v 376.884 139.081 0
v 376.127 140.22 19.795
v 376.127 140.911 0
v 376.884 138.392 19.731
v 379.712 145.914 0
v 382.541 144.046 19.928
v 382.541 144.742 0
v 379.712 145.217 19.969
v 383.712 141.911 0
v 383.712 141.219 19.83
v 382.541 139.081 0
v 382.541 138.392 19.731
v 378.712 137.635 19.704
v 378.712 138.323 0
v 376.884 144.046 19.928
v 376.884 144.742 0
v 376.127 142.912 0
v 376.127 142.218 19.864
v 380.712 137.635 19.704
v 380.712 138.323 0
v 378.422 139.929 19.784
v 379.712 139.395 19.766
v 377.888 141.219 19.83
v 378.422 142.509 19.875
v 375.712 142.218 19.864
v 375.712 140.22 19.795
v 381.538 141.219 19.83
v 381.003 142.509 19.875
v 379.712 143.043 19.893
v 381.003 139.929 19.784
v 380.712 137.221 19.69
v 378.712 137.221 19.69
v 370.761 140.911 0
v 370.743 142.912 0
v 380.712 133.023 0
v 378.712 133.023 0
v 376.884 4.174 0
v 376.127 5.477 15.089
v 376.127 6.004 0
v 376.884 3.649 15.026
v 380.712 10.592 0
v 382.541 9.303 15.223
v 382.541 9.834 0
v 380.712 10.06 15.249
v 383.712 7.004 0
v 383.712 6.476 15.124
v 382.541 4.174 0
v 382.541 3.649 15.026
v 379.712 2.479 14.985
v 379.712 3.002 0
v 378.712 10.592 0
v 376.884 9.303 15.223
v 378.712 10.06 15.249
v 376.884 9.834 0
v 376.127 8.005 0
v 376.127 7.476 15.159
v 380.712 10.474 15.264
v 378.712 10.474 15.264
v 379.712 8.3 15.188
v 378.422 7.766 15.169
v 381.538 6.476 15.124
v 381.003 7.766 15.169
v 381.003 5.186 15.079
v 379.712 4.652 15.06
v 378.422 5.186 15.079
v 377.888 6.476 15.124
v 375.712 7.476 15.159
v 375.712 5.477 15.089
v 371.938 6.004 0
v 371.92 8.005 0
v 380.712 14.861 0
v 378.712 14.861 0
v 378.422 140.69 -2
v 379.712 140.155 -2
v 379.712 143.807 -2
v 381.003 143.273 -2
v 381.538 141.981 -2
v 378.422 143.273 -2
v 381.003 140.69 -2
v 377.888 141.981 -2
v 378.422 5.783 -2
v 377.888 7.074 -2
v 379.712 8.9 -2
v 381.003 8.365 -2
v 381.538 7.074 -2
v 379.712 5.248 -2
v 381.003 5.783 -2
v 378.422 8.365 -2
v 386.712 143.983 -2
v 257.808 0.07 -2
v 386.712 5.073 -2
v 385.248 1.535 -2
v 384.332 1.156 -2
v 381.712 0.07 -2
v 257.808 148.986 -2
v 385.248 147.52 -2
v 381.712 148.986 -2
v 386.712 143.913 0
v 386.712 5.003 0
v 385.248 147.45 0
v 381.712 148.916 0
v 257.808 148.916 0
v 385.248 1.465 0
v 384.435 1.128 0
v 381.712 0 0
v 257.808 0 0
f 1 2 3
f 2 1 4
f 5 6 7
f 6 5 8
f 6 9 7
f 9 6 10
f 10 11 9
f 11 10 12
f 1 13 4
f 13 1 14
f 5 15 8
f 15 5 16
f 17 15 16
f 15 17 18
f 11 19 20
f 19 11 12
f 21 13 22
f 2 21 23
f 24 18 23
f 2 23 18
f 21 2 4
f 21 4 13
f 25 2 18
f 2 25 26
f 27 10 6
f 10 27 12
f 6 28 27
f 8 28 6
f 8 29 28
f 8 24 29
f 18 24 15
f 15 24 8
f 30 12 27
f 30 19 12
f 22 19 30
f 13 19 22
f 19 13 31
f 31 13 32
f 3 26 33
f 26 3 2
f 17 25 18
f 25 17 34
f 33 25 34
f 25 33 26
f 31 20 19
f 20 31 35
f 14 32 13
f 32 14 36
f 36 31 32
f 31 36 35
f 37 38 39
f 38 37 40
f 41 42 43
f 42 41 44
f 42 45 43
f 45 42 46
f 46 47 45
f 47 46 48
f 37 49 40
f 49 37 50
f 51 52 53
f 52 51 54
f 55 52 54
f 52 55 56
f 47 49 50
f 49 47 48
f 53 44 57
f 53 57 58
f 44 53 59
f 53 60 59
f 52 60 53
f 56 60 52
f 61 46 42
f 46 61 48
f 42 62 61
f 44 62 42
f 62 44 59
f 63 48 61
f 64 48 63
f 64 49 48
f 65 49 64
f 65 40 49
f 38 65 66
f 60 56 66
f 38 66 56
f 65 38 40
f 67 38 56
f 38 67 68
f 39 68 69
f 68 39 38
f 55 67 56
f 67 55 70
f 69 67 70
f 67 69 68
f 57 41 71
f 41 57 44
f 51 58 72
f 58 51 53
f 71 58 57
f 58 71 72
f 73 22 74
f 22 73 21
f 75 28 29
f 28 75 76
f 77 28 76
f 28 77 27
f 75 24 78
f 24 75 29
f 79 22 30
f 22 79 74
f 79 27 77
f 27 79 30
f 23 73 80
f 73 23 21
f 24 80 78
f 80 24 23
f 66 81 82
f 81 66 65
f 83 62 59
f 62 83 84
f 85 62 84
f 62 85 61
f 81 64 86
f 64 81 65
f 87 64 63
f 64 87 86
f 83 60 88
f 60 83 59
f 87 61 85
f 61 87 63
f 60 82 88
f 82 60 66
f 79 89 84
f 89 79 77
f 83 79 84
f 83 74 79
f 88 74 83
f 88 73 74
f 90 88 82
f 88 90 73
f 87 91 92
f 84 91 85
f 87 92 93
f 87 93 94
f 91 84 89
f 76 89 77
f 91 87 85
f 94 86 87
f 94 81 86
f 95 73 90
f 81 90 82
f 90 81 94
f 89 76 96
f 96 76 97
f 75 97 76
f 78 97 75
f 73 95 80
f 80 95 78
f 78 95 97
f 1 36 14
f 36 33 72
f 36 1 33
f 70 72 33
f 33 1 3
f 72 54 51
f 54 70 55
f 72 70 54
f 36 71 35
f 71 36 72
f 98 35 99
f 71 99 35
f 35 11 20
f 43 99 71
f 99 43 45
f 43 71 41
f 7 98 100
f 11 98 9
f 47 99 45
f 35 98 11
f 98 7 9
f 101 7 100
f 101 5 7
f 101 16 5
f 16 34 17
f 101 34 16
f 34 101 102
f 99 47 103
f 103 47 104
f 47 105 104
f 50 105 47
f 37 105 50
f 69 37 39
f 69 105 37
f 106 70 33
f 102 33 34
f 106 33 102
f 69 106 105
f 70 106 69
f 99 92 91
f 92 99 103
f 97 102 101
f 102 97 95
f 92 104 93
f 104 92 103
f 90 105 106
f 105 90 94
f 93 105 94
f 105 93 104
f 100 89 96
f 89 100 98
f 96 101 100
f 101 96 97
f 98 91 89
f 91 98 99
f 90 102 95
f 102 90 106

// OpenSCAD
// Generated by SolidPython 1.1.3 on 2025-01-26 22:52:07
$fn = 8;


difference() {
	intersection() {
		union() {
			difference() {
				rotate(a = 2, v = [1, 0, 0]) {
					translate(v = [0, 0, 15.4445000000]) {
						translate(v = [0, 138.8250000000, 0]) {
							translate(v = [10, 0, 0]) {
								difference() {
									translate(v = [-3, 0, 0]) {
										translate(v = [0, -131.8250000000, 0]) {
											translate(v = [0, 0, -68.5555000000]) {
												union() {
													translate(v = [0, 0, 0]) {
														translate(v = [0, 0, 0]) {
															union() {
																cylinder(h = 68, r = 4.0000000000);
																rotate(a = 90, v = [1, 0, 0]) {
																	linear_extrude(center = true, height = 2) {
																		polygon(paths = [[0, 1, 2, 3]], points = [[0, 0], [0, 68], [4.0000000000, 68], [21.0000000000, 0]]);
																	}
																}
																rotate(a = 90, v = [0, 0, 1]) {
																	rotate(a = 90, v = [1, 0, 0]) {
																		linear_extrude(center = true, height = 2) {
																			polygon(paths = [[0, 1, 2, 3]], points = [[0, 0], [0, 68], [4.0000000000, 68], [21.0000000000, 0]]);
																		}
																	}
																}
															}
														}
													}
													translate(v = [0, 0, 0]) {
														translate(v = [0, 134.8250000000, 0]) {
															union() {
																cylinder(h = 68, r = 4.0000000000);
																rotate(a = 90, v = [1, 0, 0]) {
																	linear_extrude(center = true, height = 2) {
																		polygon(paths = [[0, 1, 2, 3]], points = [[0, 0], [0, 68], [4.0000000000, 68], [21.0000000000, 0]]);
																	}
																}
																rotate(a = 270, v = [0, 0, 1]) {
																	rotate(a = 90, v = [1, 0, 0]) {
																		linear_extrude(center = true, height = 2) {
																			polygon(paths = [[0, 1, 2, 3]], points = [[0, 0], [0, 68], [4.0000000000, 68], [21.0000000000, 0]]);
																		}
																	}
																}
															}
														}
													}
													translate(v = [372.7125000000, 0, 0]) {
														translate(v = [0, 134.8250000000, 0]) {
															union() {
																cylinder(h = 68, r = 4.0000000000);
																rotate(a = 180, v = [0, 0, 1]) {
																	rotate(a = 90, v = [1, 0, 0]) {
																		linear_extrude(center = true, height = 2) {
																			polygon(paths = [[0, 1, 2, 3]], points = [[0, 0], [0, 68], [4.0000000000, 68], [21.0000000000, 0]]);
																		}
																	}
																}
																rotate(a = 270, v = [0, 0, 1]) {
																	rotate(a = 90, v = [1, 0, 0]) {
																		linear_extrude(center = true, height = 2) {
																			polygon(paths = [[0, 1, 2, 3]], points = [[0, 0], [0, 68], [4.0000000000, 68], [21.0000000000, 0]]);
																		}
																	}
																}
															}
														}
													}
													translate(v = [372.7125000000, 0, 0]) {
														translate(v = [0, 0, 0]) {
															union() {
																cylinder(h = 68, r = 4.0000000000);
																rotate(a = 180, v = [0, 0, 1]) {
																	rotate(a = 90, v = [1, 0, 0]) {
																		linear_extrude(center = true, height = 2) {
																			polygon(paths = [[0, 1, 2, 3]], points = [[0, 0], [0, 68], [4.0000000000, 68], [21.0000000000, 0]]);
																		}
																	}
																}
																rotate(a = 90, v = [0, 0, 1]) {
																	rotate(a = 90, v = [1, 0, 0]) {
																		linear_extrude(center = true, height = 2) {
																			polygon(paths = [[0, 1, 2, 3]], points = [[0, 0], [0, 68], [4.0000000000, 68], [21.0000000000, 0]]);
																		}
																	}
																}
															}
														}
													}
													translate(v = [186.3562500000, 0, 0]) {
														translate(v = [0, 134.8250000000, 0]) {
															union() {
																cylinder(h = 68, r = 4.0000000000);
																rotate(a = 90, v = [1, 0, 0]) {
																	linear_extrude(center = true, height = 2) {
																		polygon(paths = [[0, 1, 2, 3]], points = [[0, 0], [0, 68], [4.0000000000, 68], [21.0000000000, 0]]);
																	}
																}
																rotate(a = 180, v = [0, 0, 1]) {
																	rotate(a = 90, v = [1, 0, 0]) {
																		linear_extrude(center = true, height = 2) {
																			polygon(paths = [[0, 1, 2, 3]], points = [[0, 0], [0, 68], [4.0000000000, 68], [21.0000000000, 0]]);
																		}
																	}
																}
															}
														}
													}
													translate(v = [186.3562500000, 0, 0]) {
														translate(v = [0, 0, 0]) {
															union() {
																cylinder(h = 68, r = 4.0000000000);
																rotate(a = 90, v = [1, 0, 0]) {
																	linear_extrude(center = true, height = 2) {
																		polygon(paths = [[0, 1, 2, 3]], points = [[0, 0], [0, 68], [4.0000000000, 68], [21.0000000000, 0]]);
																	}
																}
																rotate(a = 180, v = [0, 0, 1]) {
																	rotate(a = 90, v = [1, 0, 0]) {
																		linear_extrude(center = true, height = 2) {
																			polygon(paths = [[0, 1, 2, 3]], points = [[0, 0], [0, 68], [4.0000000000, 68], [21.0000000000, 0]]);
																		}
																	}
																}
															}
														}
													}
												}
											}
										}
									}
									translate(v = [-3, 0, 0]) {
										translate(v = [0, -131.8250000000, 0]) {
											union() {
												translate(v = [0, 0, 0]) {
													translate(v = [0, 0, 0]) {
														cylinder(center = true, h = 272, r = 1.8250000000);
													}
												}
												translate(v = [0, 0, 0]) {
													translate(v = [0, 134.8250000000, 0]) {
														cylinder(center = true, h = 272, r = 1.8250000000);
													}
												}
												translate(v = [372.7125000000, 0, 0]) {
													translate(v = [0, 134.8250000000, 0]) {
														cylinder(center = true, h = 272, r = 1.8250000000);
													}
												}
												translate(v = [372.7125000000, 0, 0]) {
													translate(v = [0, 0, 0]) {
														cylinder(center = true, h = 272, r = 1.8250000000);
													}
												}
												translate(v = [186.3562500000, 0, 0]) {
													translate(v = [0, 134.8250000000, 0]) {
														cylinder(center = true, h = 272, r = 1.8250000000);
													}
												}
												translate(v = [186.3562500000, 0, 0]) {
													translate(v = [0, 0, 0]) {
														cylinder(center = true, h = 272, r = 1.8250000000);
													}
												}
											}
										}
									}
								}
							}
						}
					}
				}
				translate(v = [0, 0, -2]) {
					translate(v = [0, 0, -100]) {
						translate(v = [0, -74.4125000000, 0]) {
							translate(v = [-193.3562500000, 0, 0]) {
								cube(size = [773.4250000000, 297.6500000000, 100]);
							}
						}
					}
				}
			}
			intersection() {
				translate(v = [0, 0, -2]) {
					translate(v = [-193.3562500000, 0, 0]) {
						translate(v = [0, -74.4125000000, 0]) {
							cube(size = [773.4250000000, 297.6500000000, 2]);
						}
					}
				}
				rotate(a = 2, v = [1, 0, 0]) {
					translate(v = [0, 0, 15.4445000000]) {
						translate(v = [0, 138.8250000000, 0]) {
							translate(v = [10, 0, 0]) {
								translate(v = [0, 0, -34.0000000000]) {
									translate(v = [183.3562500000, 0, 0]) {
										translate(v = [0, -64.4125000000, 0]) {
											minkowski() {
												cube(center = true, size = [376.7125000000, 138.8250000000, 68]);
												cylinder(center = true, h = 0.5555000000, r = 5);
											}
										}
									}
								}
							}
						}
					}
				}
			}
		}
		translate(v = [0, 0, 15.4445000000]) {
			translate(v = [0, 138.8250000000, 0]) {
				translate(v = [10, 0, 0]) {
					translate(v = [247.8083333333, 0, 0]) {
						translate(v = [0, -223.2375000000, 0]) {
							translate(v = [0, 0, -34.0000000000]) {
								cube(size = [128.9041666667, 297.6500000000, 136]);
							}
						}
					}
				}
			}
		}
	}
	rotate(a = 2, v = [1, 0, 0]) {
		translate(v = [0, 0, 15.4445000000]) {
			translate(v = [0, 138.8250000000, 0]) {
				translate(v = [10, 0, 0]) {
					translate(v = [-3, 0, 0]) {
						translate(v = [0, -131.8250000000, 0]) {
							union() {
								translate(v = [0, 0, 0]) {
									translate(v = [0, 0, 0]) {
										cylinder(center = true, h = 272, r = 1.8250000000);
									}
								}
								translate(v = [0, 0, 0]) {
									translate(v = [0, 134.8250000000, 0]) {
										cylinder(center = true, h = 272, r = 1.8250000000);
									}
								}
								translate(v = [372.7125000000, 0, 0]) {
									translate(v = [0, 134.8250000000, 0]) {
										cylinder(center = true, h = 272, r = 1.8250000000);
									}
								}
								translate(v = [372.7125000000, 0, 0]) {
									translate(v = [0, 0, 0]) {
										cylinder(center = true, h = 272, r = 1.8250000000);
									}
								}
								translate(v = [186.3562500000, 0, 0]) {
									translate(v = [0, 134.8250000000, 0]) {
										cylinder(center = true, h = 272, r = 1.8250000000);
									}
								}
								translate(v = [186.3562500000, 0, 0]) {
									translate(v = [0, 0, 0]) {
										cylinder(center = true, h = 272, r = 1.8250000000);
									}
								}
							}
						}
					}
				}
			}
		}
	}
}
/***********************************************
*********      SolidPython code:      **********
************************************************
 
#!/usr/bin/env python3

import argparse
from asyncio import subprocess
import json
# import math
import re
import logging
import os
# import os.path
import subprocess
# import time

from solid import *
from solid.utils import *

from parameters import Parameters
from keyboard import Keyboard
from cable import Cable

# Set logger level variables
console_logging_level = logging.WARN
file_logging_level = logging.DEBUG


# Get root logger and set main logger level to DEBUG
logger = logging.getLogger()
logger.setLevel(logging.DEBUG)


# Create formatters
console_formatter = logging.Formatter('%(name)s %(levelname)s: %(funcName)s: [%(lineno)d]: %(message)s')
file_formatter = logging.Formatter('%(asctime)s %(levelname)s %(name)s: %(funcName)s: [%(lineno)d]: %(message)s')

# Create console handler and set level to info
console_handler = logging.StreamHandler()
console_handler.setLevel(console_logging_level)

# Add formatter to console_handler
console_handler.setFormatter(console_formatter)

# Add console handler to logger
logger.addHandler(console_handler)

# Get file info that will be used to creat log file
script_location = Path(os.path.dirname(os.path.realpath(__file__)))
log_file_name = 'generator.log'
log_file_path = script_location / log_file_name

# Create file handler and set level to info
file_handler = logging.FileHandler(log_file_path, mode = 'w')
file_handler.setLevel(file_logging_level)

# Add formatter to file_handler
file_handler.setFormatter(file_formatter)

# Add file handler to logger
logger.addHandler(file_handler)


# Helper for parser to wnsure filename argument has to correct extension
def CheckExt(choices):
    class Act(argparse.Action):
        def __call__(self,parser,namespace,fname,option_string=None):
            ext = os.path.splitext(fname)[1][1:]
            if ext not in choices:
                option_string = '({})'.format(option_string) if option_string else ''
                parser.error("file doesn't end with one of {}{}".format(choices,option_string))
            else:
                setattr(namespace,self.dest,fname)

    return Act



def main():

    parser = argparse.ArgumentParser(description='Build custom keyboard SCAD file using keyboard layout editor format')
    parser.add_argument('-i', '--input-file', metavar = 'layout_json_file_name.json', help = 'A path to a keyboard layout editor json file', required = True, action=CheckExt({'json'}))
    # parser.add_argument('-o', '--output-folder', metavar = 'scad', help = 'A path to a folder to store the generated open scad file')
    parser.add_argument('-p', '--parameter-file', metavar = 'parameters.json', help = 'A JSON file containing paramters for the object buing made', default = None, action=CheckExt({'json'}))
    parser.add_argument('-s', '--section', metavar = 'section_num', help = 'The number of the section that should be built', type = int, default = -1)
    parser.add_argument('-a', '--all-sections', help = 'Output all the parts for all possible sections in separate files', default = False, action = 'store_true')
    parser.add_argument('-e', '--exploded', help = 'Create test file with each section shown as an exploded view', default = False, action = 'store_true')
    parser.add_argument('-f', '--fragments', metavar = 'num_fragments', help = 'The number of fragments to be used when creating curves', type = int, default = 8)
    parser.add_argument('-r', '--render', help = 'Render an STL from the generated scad file', default = False, action = 'store_true')
    parser.add_argument('--switch-type-in-filename', help = 'Add the switch type name and stabilizer type name to the filname', default = False, action = 'store_true')

    # Parse command line arguments
    args = parser.parse_args()
    logger.debug(vars(args))

    # Create Path object from input file argument
    input_file_path = Path(args.input_file)

    # Get base folder path
    base_path = input_file_path.parent

    # Get input file name onle
    file_name_only = input_file_path.name
    
    # Get layout name from file name
    layout_name = input_file_path.stem

    # Generate output scad and stl output folder paths
    output_base_folder = base_path / layout_name
    scad_folder_path = output_base_folder / 'scad'
    stl_folder_path = output_base_folder / 'stl'

    # Ensure all outpur folders exists
    if output_base_folder.is_dir() == False:
        output_base_folder.mkdir()

    if scad_folder_path.is_dir() == False:
        scad_folder_path.mkdir()

    if stl_folder_path.is_dir() == False:
        stl_folder_path.mkdir()

    logger.debug('layout_name: %s', str(layout_name))
    logger.debug('base_path: %s', str(base_path))
    logger.debug('file_name_only: %s', str(file_name_only))
    
    # define output file extensions
    scad_postfix = '.scad'
    stl_postfix  = '.stl'

    # Set fragments per circle
    FRAGMENTS = args.fragments
    logger.debug('\tFragments: %d', FRAGMENTS)

    # Pattern and Replacement strings to be used when trying to turn keyboard-layout-editor raw output into valid JSON
    json_key_pattern = '([{,])([xywha1]+):'
    json_key_replace = '\\1"\\2":'

    # Open JSON layout file
    logger.debug('Open layout file %s', input_file_path)
    try:
        # Try with utf-8 encoding specified
        f = open(input_file_path, encoding="utf-8")
    except:
        # Failed to open
        logger.info('Failed to open layout file with utf-8 encoding specified. Try opening without specifying an encoding')
        try:
            # Try opening with no encoding spcificed
            f = open(input_file_path)
        except:
            logger.error('Failed to open layout file both spefifying utf-8 andcoding and not specifying any encodeing. Exiting')
            exit(1)

    logger.debug('Read layout JSON string from file %s', input_file_path)
    try:
        keyboard_layout = f.read()
    except UnicodeDecodeError:
        logger.error('Unable to decode layout file. Please provide utf-8 encoded files')
        exit(-1)

    keyboard_layout_dict = None

    # Load keyboard layout dictionary
    logger.debug('Parse layout file JSON string')
    try:
        # Attempt to parse to provided JSON string
        keyboard_layout_dict = json.loads(keyboard_layout)
        logger.debug('Valid Json Parsed')
    except:
        # Failed to parse the JSON test.
        # This most likely means that the keybaord-layout-editor raw output was provided
        # Attempt to modify that string to make it valid JSON
        keyboard_layout = '[%s]' % (keyboard_layout)
        keyboard_layout = re.sub(json_key_pattern, json_key_replace, keyboard_layout)
        try:
            keyboard_layout_dict = json.loads(keyboard_layout)
            logger.info('Initial layout Json Invalid. Json modified and parsed')
        except:
            logger.error('Failed to parse layout json after attempt at correction.')
            raise

    logger.debug('keyboard_layout_dict: %s', str(keyboard_layout_dict))


    # Read parameter file
    parameter_dict = None
    if args.parameter_file is not None:
        # Open JSON parameter file
        logger.debug('Open parameter file %s', args.parameter_file)
        try:
            # Try with utf-8 encoding specified
            f = open(args.parameter_file, encoding="utf-8")
        except:
            # Failed to open
            logger.info('Failed to open parameter file with utf-8 encoding specified. Try opening without specifying an encoding')
            try:
                # Try opening with no encoding spcificed
                f = open(args.parameter_fil)
            except:
                logger.error('Failed to open parameter file both spefifying utf-8 andcoding and not specifying any encodeing. Exiting')
                exit(1)
        

        logger.debug('Read JSON string from parameter file %s', args.parameter_file)
        try:
             parameter_file_text = f.read()
        except UnicodeDecodeError:
            logger.error('Unable to decode parameter file. Please provide utf-8 encoded files')
            exit(-1)
       
        logger.debug('Parse parameter JSON string')
        try:
            parameter_dict = json.loads(parameter_file_text)
            logger.debug('Valid Json Parsed')
        except:
            logger.error('Failed to parse parameter JSON file.')
            raise

        logger.debug('parameter_dict: %s', str(parameter_dict))


    # Set parameters from imput file
    parameters = Parameters(parameter_dict)
    
    # Create Keyboard instance
    keyboard = Keyboard(parameters)

    # Process the keyboard layout object
    keyboard.process_keyboard_layout(keyboard_layout_dict)
    keyboard.process_custom_shapes()

    logger.debug('kerf: %f', keyboard.kerf)

    # Dictionary of SolidPython solid objects that need to be rendered to SCAD and to STL if desired
    solid_object_dict = {}

    # Create objects for each of the generated sections
    if args.all_sections == True:
        # Iterate over all sections generated and add all sections to solid_object_dict
        for section in range(keyboard.get_top_section_count()):
            # Set current section for generator
            keyboard.set_section(section)

            # Create dict for section
            solid_object_dict[section] = {}

            # Add top assembly, plate, and all assembly to section dict
            solid_object_dict[section]['top'] = keyboard.get_assembly(top = True)
            solid_object_dict[section]['all'] = keyboard.get_assembly(all = True)
            solid_object_dict[section]['plate'] = keyboard.get_assembly(plate_only = True)

            # If there is a bottom section for the current section add it to section dict
            if section < keyboard.get_bottom_section_count():
                solid_object_dict[section]['bottom'] = keyboard.get_assembly(bottom = True)
            
    # Create exploded object
    elif args.exploded == True:
        solid_object_dict[-1] = {}
        solid_object_dict[-1]['top'] = union()
        solid_object_dict[-1]['plate'] = union()
        solid_object_dict[-1]['bottom'] = union()
        for section in range(keyboard.get_top_section_count()):
            keyboard.set_section(section)
            solid_object_dict[-1]['top'] += up(5 * section) ( right(10 * section) ( keyboard.get_assembly(top = True) ) )
            solid_object_dict[-1]['plate'] += up(5 * section) ( right(10 * section) ( keyboard.get_assembly(plate_only = True) ) )
            if section < keyboard.get_bottom_section_count():
                solid_object_dict[-1]['bottom'] += up(5 * section) ( right(10 * section) ( keyboard.get_assembly(bottom = True) ) )
    

    # Create objects for a specified section
    elif args.section > -1:
        # Set desired section to create
        keyboard.set_section(args.section)

        # Create dict for section
        solid_object_dict[args.section] = {}

        # Add top assembly, plate, and all assembly to section dict
        solid_object_dict[args.section]['top'] = keyboard.get_assembly(top = True)
        solid_object_dict[args.section]['all'] = keyboard.get_assembly(all = True)
        solid_object_dict[args.section]['plate'] = keyboard.get_assembly(plate_only = True)

        # If there is a bottom section for the current section add it to section dict
        if args.section < keyboard.get_bottom_section_count():
            solid_object_dict[args.section]['bottom'] = keyboard.get_assembly(bottom = True)

    # Create an objects that are not split into sections. No other options were specified
    else:
        logger.debug('Create whole object. No other options specified')
        solid_object_dict['all'] = {}
        solid_object_dict['all']['top'] = keyboard.get_assembly(top = True)
        solid_object_dict['all']['bottom'] = keyboard.get_assembly(bottom = True)
        solid_object_dict['all']['all'] = keyboard.get_assembly(all = True)
        solid_object_dict['all']['plate'] = keyboard.get_assembly(plate_only = True)
    
    # Add global items that are not dependant on the sctions or parts of the item to build
    solid_object_dict['global'] = {}

    # Generate a strain relief piece for the cable hole
    if parameters.cable_hole == True:
        cable = Cable(parameters)
        solid_object_dict['global']['cable_holder_main'] = cable.holder_main()
        solid_object_dict['global']['cable_holder_clamp'] = cable.holder_clamp()
        solid_object_dict['global']['cable_holder_all'] = cable.holder_all()

    print(parameters)
    print('Case Height: %f, Case Width: %f\n' % (parameters.real_case_height, parameters.real_case_width))
    
    logger.info('Case Height: %f, Case Width: %f', parameters.real_case_height, parameters.real_case_width)
    logger.info('Sections In Top: %d', keyboard.get_top_section_count())
    logger.info('Sections In Bottom: %d', keyboard.get_bottom_section_count())


    ############################################################
    # Render SCAD and STL files
    ############################################################
    subprocess_dict = {}

    switch_type_for_filename = ''
    stab_type_for_filename = ''

    for section in solid_object_dict.keys():

        if args.switch_type_in_filename == True:
            switch_type_for_filename = '_' + parameters.switch_type
            stab_type_for_filename = '_' + parameters.stabilizer_type

        section_postfix = ''

        # Creating global items that have no relaton to switch type
        if isinstance(section, str) and section == 'global':
            switch_type_for_filename = ''
            stab_type_for_filename = ''
        
        # If the current object dict section is an int greater than -1 add the section number to the filename
        if isinstance(section, int) and section > -1:
            section_postfix = '_section_%d' % (section)
        
        if args.exploded == True:
            section_postfix = '_exploded'

        for part_name in solid_object_dict[section].keys():
            part_name_formatted = '_' + part_name

            scad_file_name = scad_folder_path / (layout_name + section_postfix + part_name_formatted + switch_type_for_filename + stab_type_for_filename + scad_postfix)
            stl_file_name = stl_folder_path / (layout_name + section_postfix + part_name_formatted + switch_type_for_filename + stab_type_for_filename + stl_postfix)

            if solid_object_dict[section][part_name] is not None:
                logger.info('Generate scad file with name %s', scad_file_name)
                # Generate SCAD file from assembly
                scad_render_to_file(solid_object_dict[section][part_name], scad_file_name, file_header=f'$fn = {FRAGMENTS};')
                print('Generated scad file with name', scad_file_name)
                
                # Render STL if option is chosen
                if args.render:
                    logger.debug('Render STL from SCAD')
                    logger.info('Generate stl file with name %s from %s', stl_file_name, scad_file_name)

                    openscad_command_list = ['openscad', '-o', '%s' % (stl_file_name), '%s' % (scad_file_name)]
                    subprocess_dict[stl_file_name] = subprocess.Popen(openscad_command_list)
    
    
    ################################################################
    #  Wait for render processes to complete
    ################################################################
    if args.render:
        logger.debug(subprocess_dict)
        running = True
        while running == True:
            running = False
            for stl_file_name in subprocess_dict.keys():
                p = subprocess_dict[stl_file_name]
                if p is not None:
                    # running = True
                    rcode = None
                    try:
                        rcode = p.wait(.1)
                    except subprocess.TimeoutExpired as err:
                        running = True
                    if rcode is not None:
                        logger.info('Render Complete: file: %s', stl_file_name)
                        print('Render Complete: file:', stl_file_name)
                        subprocess_dict[stl_file_name] = None
            # time.sleep(1)



    logger.info('Generation Complete')

if __name__ == "__main__":
    main()
 
 
************************************************/
